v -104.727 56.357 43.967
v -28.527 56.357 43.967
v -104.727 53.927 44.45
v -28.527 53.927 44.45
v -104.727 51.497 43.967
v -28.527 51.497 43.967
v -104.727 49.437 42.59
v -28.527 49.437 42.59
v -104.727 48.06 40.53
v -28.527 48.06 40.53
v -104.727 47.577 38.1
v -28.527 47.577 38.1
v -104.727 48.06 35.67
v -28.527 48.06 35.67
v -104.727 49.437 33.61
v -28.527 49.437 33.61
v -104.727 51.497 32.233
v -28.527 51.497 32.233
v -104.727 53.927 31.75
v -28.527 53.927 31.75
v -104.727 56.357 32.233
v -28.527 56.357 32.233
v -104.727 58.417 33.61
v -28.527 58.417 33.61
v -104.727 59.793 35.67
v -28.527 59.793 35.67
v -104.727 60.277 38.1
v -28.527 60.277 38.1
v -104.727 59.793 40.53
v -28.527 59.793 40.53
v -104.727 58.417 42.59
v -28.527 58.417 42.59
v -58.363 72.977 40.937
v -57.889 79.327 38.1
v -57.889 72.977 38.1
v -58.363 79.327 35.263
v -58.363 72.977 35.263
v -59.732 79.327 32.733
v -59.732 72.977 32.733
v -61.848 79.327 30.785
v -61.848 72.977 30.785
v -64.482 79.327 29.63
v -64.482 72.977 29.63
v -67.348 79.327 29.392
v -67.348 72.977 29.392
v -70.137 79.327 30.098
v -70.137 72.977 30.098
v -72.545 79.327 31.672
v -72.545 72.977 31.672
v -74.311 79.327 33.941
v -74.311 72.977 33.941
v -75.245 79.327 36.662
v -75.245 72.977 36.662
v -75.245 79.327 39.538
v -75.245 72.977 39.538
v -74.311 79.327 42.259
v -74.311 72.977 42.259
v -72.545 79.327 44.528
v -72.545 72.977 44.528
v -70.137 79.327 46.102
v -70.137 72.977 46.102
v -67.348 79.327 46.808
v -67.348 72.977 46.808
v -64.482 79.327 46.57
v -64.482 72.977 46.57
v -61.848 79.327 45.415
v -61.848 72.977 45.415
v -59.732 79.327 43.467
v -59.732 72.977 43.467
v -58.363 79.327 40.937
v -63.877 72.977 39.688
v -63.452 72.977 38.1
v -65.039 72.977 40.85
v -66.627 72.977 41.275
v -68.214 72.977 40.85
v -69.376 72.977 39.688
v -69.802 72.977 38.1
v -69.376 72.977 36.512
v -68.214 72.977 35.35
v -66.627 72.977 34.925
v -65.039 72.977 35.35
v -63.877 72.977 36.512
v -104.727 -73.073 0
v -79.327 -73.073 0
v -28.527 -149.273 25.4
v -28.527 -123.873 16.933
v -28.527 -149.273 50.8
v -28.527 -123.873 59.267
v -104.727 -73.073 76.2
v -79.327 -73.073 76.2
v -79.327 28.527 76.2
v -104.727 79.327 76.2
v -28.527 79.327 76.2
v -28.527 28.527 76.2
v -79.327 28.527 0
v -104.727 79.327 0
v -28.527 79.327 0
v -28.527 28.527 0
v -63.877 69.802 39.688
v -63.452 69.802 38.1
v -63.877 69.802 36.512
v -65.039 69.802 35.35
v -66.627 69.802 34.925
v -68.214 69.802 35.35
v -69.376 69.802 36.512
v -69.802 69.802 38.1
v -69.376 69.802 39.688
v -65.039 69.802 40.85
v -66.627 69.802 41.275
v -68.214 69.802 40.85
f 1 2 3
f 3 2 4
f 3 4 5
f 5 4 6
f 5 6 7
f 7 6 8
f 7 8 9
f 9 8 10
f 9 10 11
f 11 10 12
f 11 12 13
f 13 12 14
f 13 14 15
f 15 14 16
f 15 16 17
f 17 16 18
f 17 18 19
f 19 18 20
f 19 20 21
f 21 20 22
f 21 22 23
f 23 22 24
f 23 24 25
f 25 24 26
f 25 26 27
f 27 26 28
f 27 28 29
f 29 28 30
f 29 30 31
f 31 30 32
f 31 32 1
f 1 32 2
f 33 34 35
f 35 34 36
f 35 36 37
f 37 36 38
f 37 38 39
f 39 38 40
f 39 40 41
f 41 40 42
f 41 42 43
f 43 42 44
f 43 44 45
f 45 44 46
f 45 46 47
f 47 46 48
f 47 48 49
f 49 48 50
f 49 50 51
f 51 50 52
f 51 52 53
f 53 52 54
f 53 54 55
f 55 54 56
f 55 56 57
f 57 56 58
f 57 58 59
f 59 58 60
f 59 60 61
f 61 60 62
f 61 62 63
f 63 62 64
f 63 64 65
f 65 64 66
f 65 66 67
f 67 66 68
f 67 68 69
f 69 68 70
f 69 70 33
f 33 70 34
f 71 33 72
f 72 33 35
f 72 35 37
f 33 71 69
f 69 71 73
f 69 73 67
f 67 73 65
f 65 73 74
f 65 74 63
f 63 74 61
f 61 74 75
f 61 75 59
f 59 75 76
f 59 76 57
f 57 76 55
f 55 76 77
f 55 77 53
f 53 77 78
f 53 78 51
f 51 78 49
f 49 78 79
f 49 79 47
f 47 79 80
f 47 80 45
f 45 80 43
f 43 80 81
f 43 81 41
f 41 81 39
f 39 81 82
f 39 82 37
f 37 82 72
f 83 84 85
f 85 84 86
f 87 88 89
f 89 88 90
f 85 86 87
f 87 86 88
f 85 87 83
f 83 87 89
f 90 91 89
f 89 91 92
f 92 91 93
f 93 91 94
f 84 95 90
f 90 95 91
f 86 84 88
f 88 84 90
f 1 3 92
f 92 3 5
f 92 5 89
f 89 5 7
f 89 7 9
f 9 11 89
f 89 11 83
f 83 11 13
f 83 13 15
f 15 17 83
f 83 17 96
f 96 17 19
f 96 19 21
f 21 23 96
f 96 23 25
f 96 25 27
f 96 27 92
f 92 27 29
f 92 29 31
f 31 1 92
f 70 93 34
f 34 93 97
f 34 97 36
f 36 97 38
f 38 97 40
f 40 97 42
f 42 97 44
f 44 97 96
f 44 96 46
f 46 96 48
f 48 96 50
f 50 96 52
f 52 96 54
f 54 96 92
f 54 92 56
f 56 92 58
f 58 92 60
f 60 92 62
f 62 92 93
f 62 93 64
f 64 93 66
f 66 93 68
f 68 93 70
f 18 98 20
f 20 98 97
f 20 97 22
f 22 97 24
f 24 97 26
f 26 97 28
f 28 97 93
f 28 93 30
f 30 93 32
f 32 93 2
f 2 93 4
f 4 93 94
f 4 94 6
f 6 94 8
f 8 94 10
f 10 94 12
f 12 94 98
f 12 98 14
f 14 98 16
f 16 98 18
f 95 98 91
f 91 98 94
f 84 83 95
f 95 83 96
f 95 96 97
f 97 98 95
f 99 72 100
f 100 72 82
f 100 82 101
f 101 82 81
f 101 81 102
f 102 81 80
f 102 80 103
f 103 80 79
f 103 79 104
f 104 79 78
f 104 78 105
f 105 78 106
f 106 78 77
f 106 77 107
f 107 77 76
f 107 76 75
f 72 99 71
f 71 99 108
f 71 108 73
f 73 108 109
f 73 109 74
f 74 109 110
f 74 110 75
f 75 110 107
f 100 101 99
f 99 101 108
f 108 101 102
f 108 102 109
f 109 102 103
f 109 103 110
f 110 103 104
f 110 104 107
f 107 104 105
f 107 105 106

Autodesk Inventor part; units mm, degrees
ref_plane "YZ Plane" through (0, 0, 0) normal (1, 0, 0) x (0, 1, 0)
ref_plane "XZ Plane" through (0, 0, 0) normal (0, 1, 0) x (-1, 0, 0)
sketch "Sketch1" plane through (0, 0, 0) normal (0, 0, 1) x (1, 0, 0)
  line L0 (0, 0) -> (-28.5267, 28.5267) construction
  line L1 (-28.5267, 28.5267) -> (-79.3267, 28.5267)
  line L2 (-79.3267, -73.0733) -> (-28.5267, -123.8733)
  line L3 (-28.5267, -123.8733) -> (-28.5267, -149.2733)
  line L4 (-28.5267, -149.2733) -> (-104.7267, -73.0733)
  line L5 (-104.7267, -73.0733) -> (-104.7267, 79.3267)
  line L6 (-79.3267, -73.0733) -> (-79.3267, 28.5267)
  line L7 (-28.5267, 28.5267) -> (-28.5267, 79.3267)
  line L8 (-28.5267, 79.3267) -> (-104.7267, 79.3267)
  point P0 (-28.5267, 153.9136)
  dimension "d11" = 101.6
  dimension "d12" = 50.8
  dimension "d13" = 25.4
  dimension "d17" = 28.5267
  dimension "d18" = 50.8
  dimension "d23" = 135
  dimension "d24" = 17.9605
  dimension "d25" = 50.8
  dimension "d26" = 152.4
extrude "Extrusion1" add sketch "Sketch1" along normal blind 76.2
ref_plane "Work Plane1" through (-155.5267, -73.0733, 0) normal (-1, 0, 0) x (0, 0, 1)
sketch "Sketch2" plane through (-155.5267, -73.0733, 0) normal (-1, 0, 0) x (0, 0, 1)
  line L0 (0, -76.2) -> (76.2, -76.2) projected
  line L1 (76.2, -76.2) -> (50.8, -76.2)
  line L2 (76.2, 0) -> (76.2, 101.6) projected
  line L3 (50.8, -76.2) -> (76.2, 0)
  line L4 (76.2, 0) -> (76.2, -76.2)
  line L5 (0, 0) -> (0, -76.2) projected
  line L6 (0, -76.2) -> (25.4, -76.2)
  line L7 (25.4, -76.2) -> (0, 0)
  line L8 (0, 0) -> (0, -76.2)
  point P0 (0, 73.0733)
  dimension "d28" = 25.4
  dimension "d29" = 25.4
extrude "Extrusion2" cut sketch "Sketch2" against normal blind 177.8
sketch "Sketch3" plane through (-104.7267, 79.3267, 0) normal (0, 1, 0) x (1, 0, 0)
  circle A0 centre (38.1, -38.1) radius 8.7376
  line L0 (76.2, 0) -> (0, 0) projected
  line L1 (76.2, 0) -> (76.2, -76.2) projected
  point P0 (104.7267, 0)
  dimension "d32" = 38.1
  dimension "d33" = 38.1
  dimension "d34" = 17.4752
extrude "Extrusion3" cut sketch "Sketch3" against normal blind 6.35
sketch "Sketch4" plane through (-28.5267, 28.5267, 0) normal (1, 0, 0) x (0, 0, -1)
  circle A0 centre (-38.1, 25.4) radius 6.35
  line L0 (0, 0) -> (0, 50.8) projected
  line L1 (0, 0) -> (-76.2, 0) projected
  point P0 (0, -28.5267)
  point P1 (-38.1, 0)
  dimension "d39" = 12.7
  dimension "d40" = 38.1
  dimension "d41" = 25.4
extrude "Extrusion4" cut sketch "Sketch4" against normal blind 153.9875
sketch "Sketch5" plane through (-66.6267, 72.9767, 38.1) normal (0, 1, 0) x (1, 0, 0)
  circle A0 centre (0, 0) radius 3.175
  point P0 (66.6267, 38.1)
  dimension "d44" = 6.35
extrude "Extrusion5" cut sketch "Sketch5" against normal blind 3.175
properties part number "Claw_Finger_BR" material "PET Plastic"
